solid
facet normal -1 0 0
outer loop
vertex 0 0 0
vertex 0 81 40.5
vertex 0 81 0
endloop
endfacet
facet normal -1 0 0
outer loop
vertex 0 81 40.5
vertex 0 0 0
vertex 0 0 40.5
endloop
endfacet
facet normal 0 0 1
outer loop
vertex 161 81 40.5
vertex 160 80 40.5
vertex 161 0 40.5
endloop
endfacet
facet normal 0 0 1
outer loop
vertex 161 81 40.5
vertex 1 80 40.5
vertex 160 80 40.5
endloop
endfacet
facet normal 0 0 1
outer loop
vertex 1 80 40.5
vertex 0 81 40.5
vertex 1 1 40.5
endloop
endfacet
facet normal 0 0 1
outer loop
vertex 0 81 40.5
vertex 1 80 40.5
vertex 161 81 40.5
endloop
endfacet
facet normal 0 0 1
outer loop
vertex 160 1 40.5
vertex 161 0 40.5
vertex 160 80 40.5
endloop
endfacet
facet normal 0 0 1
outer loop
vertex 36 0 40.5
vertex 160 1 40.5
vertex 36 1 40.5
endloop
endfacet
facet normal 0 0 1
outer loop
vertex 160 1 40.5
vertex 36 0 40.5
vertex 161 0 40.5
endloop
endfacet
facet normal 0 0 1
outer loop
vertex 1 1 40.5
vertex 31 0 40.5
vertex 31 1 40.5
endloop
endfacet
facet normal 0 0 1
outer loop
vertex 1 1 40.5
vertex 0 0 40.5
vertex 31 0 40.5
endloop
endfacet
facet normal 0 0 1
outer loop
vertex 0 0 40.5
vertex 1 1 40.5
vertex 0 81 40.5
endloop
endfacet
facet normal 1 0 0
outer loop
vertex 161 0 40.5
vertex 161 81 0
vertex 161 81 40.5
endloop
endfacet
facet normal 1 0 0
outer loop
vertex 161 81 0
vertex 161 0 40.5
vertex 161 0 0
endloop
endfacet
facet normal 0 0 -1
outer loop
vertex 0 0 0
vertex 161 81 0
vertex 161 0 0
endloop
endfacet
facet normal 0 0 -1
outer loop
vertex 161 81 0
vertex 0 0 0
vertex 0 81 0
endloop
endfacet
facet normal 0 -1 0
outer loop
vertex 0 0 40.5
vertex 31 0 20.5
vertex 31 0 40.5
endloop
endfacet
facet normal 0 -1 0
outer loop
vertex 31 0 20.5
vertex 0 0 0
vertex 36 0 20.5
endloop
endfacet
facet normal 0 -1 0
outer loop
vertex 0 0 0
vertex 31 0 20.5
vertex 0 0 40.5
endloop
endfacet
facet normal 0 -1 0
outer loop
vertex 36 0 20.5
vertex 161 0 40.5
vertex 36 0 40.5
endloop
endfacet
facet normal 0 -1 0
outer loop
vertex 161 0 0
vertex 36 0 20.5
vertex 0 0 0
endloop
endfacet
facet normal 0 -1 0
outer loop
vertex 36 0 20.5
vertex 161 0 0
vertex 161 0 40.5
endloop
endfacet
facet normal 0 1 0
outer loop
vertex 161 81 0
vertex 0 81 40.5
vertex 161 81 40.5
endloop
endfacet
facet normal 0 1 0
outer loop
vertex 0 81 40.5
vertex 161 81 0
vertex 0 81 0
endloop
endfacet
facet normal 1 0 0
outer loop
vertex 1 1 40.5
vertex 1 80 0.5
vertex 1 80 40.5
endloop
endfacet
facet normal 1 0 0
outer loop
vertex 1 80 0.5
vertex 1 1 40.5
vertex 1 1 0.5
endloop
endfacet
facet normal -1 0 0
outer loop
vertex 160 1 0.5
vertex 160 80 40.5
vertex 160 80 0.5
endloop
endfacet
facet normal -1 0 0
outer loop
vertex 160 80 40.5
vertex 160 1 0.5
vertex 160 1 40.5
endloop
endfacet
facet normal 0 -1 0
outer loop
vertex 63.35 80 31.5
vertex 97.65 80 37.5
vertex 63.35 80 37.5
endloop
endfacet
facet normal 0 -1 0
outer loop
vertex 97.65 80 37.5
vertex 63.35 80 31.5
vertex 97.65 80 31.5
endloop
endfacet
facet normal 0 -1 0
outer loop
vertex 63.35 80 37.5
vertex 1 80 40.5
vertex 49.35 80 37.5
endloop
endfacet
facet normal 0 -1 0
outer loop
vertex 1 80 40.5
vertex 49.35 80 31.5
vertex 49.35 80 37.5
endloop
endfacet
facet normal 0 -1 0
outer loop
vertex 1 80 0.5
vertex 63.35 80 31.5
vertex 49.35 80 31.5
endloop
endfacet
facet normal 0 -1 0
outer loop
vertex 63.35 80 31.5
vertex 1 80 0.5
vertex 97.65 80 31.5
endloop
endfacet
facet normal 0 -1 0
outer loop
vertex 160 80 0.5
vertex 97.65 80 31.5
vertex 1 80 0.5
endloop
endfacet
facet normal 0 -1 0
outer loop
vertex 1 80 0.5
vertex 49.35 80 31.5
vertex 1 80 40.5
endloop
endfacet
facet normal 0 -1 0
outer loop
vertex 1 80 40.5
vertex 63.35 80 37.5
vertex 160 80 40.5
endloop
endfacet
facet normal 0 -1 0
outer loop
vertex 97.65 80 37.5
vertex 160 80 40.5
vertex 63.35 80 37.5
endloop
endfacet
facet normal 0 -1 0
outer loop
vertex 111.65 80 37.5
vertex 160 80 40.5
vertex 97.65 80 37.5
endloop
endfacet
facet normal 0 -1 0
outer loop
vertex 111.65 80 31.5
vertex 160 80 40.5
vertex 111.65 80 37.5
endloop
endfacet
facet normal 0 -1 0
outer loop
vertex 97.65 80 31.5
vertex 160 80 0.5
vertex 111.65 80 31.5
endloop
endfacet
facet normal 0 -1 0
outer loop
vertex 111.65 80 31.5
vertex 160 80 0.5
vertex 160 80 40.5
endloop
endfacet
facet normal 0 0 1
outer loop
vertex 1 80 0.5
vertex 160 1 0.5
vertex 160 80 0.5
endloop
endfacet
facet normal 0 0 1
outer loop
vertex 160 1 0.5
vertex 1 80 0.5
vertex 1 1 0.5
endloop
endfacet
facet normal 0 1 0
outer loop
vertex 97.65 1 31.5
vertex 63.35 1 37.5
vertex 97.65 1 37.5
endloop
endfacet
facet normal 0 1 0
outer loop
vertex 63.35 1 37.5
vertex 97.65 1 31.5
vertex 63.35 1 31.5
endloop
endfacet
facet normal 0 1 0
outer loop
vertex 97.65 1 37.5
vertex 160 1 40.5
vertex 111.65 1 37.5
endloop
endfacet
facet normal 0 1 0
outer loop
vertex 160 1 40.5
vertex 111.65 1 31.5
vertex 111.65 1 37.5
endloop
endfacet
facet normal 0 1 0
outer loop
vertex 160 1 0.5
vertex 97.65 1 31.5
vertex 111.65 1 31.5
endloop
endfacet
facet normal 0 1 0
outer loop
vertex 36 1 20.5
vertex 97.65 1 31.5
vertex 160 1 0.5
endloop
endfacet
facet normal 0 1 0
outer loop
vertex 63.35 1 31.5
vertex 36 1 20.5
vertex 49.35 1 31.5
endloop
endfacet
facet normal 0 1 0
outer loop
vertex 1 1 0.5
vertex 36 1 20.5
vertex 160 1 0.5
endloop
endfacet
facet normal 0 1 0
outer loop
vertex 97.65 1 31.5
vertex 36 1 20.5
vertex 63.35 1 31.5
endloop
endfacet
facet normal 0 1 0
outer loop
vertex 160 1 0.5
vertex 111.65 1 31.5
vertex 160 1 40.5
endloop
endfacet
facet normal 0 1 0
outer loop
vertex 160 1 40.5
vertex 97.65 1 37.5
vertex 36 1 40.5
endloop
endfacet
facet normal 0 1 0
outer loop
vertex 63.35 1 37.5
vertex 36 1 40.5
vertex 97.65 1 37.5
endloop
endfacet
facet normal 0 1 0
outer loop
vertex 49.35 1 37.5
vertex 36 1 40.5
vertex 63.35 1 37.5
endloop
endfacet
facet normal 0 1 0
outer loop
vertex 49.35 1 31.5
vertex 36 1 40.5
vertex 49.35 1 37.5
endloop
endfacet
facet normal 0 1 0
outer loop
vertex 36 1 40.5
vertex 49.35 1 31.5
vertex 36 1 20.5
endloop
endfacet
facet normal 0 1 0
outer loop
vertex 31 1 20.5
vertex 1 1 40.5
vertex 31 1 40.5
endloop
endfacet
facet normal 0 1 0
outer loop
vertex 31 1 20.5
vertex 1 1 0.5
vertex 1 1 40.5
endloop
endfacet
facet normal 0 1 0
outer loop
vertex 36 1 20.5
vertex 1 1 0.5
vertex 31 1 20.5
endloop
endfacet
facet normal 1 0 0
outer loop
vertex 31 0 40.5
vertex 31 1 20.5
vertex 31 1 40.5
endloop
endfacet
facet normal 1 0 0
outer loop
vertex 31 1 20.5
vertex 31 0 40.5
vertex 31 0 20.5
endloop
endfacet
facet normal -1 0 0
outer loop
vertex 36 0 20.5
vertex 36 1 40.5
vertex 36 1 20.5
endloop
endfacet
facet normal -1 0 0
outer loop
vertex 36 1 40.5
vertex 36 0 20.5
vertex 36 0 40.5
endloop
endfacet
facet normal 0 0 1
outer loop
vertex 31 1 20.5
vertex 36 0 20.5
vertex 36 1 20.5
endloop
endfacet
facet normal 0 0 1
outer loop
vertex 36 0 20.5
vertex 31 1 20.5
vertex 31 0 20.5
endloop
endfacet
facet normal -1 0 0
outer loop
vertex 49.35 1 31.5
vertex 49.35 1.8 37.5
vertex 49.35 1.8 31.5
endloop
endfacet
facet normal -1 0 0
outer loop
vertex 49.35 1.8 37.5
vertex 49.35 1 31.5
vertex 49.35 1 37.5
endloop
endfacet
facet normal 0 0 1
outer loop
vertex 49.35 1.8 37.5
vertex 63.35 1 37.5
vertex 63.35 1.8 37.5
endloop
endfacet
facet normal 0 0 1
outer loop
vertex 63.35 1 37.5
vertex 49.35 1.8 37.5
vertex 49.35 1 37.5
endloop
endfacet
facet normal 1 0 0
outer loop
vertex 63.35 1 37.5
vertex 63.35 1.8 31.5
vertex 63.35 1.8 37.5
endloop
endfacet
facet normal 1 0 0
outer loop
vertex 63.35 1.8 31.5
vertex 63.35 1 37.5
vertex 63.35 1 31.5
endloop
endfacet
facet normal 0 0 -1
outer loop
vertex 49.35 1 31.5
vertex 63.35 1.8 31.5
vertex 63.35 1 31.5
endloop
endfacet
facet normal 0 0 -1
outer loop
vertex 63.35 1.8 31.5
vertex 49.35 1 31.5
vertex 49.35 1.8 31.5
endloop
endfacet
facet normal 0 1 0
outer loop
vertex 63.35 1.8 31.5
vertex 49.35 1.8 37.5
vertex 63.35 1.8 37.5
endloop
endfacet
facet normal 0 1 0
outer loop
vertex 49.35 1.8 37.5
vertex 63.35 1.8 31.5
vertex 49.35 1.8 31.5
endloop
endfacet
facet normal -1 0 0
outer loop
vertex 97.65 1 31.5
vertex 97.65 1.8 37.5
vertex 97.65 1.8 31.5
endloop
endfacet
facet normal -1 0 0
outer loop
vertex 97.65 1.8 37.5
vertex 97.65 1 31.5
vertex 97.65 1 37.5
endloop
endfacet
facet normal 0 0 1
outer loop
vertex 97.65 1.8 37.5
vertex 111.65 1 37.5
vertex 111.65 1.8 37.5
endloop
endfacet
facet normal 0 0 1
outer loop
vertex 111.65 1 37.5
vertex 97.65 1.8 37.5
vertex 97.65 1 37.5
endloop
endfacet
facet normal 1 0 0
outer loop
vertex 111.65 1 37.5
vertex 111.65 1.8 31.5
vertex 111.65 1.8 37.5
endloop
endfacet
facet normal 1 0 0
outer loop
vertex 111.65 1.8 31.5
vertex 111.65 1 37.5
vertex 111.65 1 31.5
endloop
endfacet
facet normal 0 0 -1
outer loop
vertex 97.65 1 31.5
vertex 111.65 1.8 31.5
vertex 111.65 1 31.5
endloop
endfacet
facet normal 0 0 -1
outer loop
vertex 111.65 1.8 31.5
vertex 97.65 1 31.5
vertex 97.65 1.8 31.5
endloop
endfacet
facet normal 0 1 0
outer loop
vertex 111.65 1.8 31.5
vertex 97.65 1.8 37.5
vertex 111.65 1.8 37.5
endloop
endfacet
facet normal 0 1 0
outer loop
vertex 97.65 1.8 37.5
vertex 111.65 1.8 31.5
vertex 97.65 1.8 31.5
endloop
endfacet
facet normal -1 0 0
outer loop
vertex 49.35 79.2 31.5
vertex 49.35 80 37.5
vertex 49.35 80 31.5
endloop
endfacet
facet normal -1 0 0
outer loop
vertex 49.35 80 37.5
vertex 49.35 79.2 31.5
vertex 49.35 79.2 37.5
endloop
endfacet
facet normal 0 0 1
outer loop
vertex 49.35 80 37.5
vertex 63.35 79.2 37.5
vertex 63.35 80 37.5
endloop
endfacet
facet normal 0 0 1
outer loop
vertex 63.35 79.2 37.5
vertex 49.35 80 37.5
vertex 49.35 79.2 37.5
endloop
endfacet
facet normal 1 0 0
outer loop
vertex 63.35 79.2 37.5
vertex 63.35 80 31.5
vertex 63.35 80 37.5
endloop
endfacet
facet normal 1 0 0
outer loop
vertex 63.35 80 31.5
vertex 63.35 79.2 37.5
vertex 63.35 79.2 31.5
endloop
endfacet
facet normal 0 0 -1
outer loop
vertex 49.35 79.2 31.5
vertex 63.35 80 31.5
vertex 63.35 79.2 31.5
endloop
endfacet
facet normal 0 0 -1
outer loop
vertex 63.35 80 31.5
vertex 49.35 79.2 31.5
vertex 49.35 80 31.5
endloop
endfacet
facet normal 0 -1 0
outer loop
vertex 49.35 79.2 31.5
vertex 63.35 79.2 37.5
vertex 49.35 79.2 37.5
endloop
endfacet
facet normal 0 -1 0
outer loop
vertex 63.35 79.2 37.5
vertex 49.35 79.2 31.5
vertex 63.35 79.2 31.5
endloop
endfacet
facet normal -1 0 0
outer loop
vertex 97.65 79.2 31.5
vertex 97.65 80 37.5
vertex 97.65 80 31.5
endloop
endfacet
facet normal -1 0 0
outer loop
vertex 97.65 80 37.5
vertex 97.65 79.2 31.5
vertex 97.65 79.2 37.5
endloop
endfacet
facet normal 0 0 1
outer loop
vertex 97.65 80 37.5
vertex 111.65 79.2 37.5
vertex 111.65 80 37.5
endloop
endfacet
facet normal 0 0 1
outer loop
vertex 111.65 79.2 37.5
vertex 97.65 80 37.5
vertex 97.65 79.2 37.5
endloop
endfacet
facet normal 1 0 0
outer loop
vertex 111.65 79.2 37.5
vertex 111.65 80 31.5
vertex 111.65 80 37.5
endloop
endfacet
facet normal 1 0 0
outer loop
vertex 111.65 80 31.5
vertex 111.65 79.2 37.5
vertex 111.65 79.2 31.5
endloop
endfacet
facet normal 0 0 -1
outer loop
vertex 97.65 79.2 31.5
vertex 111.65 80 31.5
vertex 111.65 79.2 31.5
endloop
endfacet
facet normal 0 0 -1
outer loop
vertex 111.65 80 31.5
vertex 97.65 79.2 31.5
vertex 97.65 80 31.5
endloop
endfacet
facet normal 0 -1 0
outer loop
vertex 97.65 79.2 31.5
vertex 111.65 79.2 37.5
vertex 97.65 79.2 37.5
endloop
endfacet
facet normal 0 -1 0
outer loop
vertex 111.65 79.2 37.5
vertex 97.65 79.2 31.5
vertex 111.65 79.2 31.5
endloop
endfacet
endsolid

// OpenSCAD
// Back box for Waveshare RGB-Matrix P2.5 64x32
// Rear usable frame: 158 x 78 mm. [web:10]

panel_len_back    = 158;
panel_height_back = 78;

inner_depth    = 30;   // free space for electronics
frame_overlap  = 10;   // how far box slides over panel frame
wall           = 1;
bottom_thick   = 0.5;

slit_width     = 5;
slit_offset    = 30;   // from left corner
slit_depth     = 20;   // from open top downward

clearance      = 0.5;

inner_len      = panel_len_back  + 2*clearance;
inner_height   = panel_height_back + 2*clearance;
outer_len      = inner_len + 2*wall;
outer_height   = inner_height + 2*wall;
outer_depth    = bottom_thick + inner_depth + frame_overlap;

// simple rectangular clip
module side_clip() {
    clip_len   = 14;   // along X
    clip_thick = 0.8;  // into cavity (Y)
    clip_height = 6;   // vertical size
    cube([clip_len, clip_thick, clip_height], center=false);
}

module box_body() {
    difference() {
        // outer shell
        cube([outer_len, outer_height, outer_depth], center=false);

        // inner cavity (hollow)
        translate([wall, wall, bottom_thick])
            cube([inner_len, inner_height, inner_depth + frame_overlap], center=false);

        // cable slit at open/top side
        translate([
            wall + slit_offset,
            0,
            outer_depth - slit_depth
        ])
            cube([slit_width, wall + 0.6, slit_depth], center=false);
    }

    // ---- clips ----
    clip_len    = 14;
    clip_thick  = 0.8;

    // attach directly to inner faces (no gap):
    clip_y_inner_bottom = wall;                         // inner bottom wall
    clip_y_inner_top    = outer_height - wall - clip_thick; // inner top wall

    // Z: in the overlap zone near open side
    clip_z      = bottom_thick + inner_depth + 1;

    // X positions chosen away from the slit (center-ish)
    xpos_list = [outer_len * 0.35, outer_len * 0.65];

    // bottom long wall clips
    for (xp = xpos_list) {
        translate([xp - clip_len/2, clip_y_inner_bottom, clip_z])
            side_clip();
    }

    // top long wall clips
    for (xp = xpos_list) {
        translate([xp - clip_len/2, clip_y_inner_top, clip_z])
            side_clip();
    }
}

box_body();
